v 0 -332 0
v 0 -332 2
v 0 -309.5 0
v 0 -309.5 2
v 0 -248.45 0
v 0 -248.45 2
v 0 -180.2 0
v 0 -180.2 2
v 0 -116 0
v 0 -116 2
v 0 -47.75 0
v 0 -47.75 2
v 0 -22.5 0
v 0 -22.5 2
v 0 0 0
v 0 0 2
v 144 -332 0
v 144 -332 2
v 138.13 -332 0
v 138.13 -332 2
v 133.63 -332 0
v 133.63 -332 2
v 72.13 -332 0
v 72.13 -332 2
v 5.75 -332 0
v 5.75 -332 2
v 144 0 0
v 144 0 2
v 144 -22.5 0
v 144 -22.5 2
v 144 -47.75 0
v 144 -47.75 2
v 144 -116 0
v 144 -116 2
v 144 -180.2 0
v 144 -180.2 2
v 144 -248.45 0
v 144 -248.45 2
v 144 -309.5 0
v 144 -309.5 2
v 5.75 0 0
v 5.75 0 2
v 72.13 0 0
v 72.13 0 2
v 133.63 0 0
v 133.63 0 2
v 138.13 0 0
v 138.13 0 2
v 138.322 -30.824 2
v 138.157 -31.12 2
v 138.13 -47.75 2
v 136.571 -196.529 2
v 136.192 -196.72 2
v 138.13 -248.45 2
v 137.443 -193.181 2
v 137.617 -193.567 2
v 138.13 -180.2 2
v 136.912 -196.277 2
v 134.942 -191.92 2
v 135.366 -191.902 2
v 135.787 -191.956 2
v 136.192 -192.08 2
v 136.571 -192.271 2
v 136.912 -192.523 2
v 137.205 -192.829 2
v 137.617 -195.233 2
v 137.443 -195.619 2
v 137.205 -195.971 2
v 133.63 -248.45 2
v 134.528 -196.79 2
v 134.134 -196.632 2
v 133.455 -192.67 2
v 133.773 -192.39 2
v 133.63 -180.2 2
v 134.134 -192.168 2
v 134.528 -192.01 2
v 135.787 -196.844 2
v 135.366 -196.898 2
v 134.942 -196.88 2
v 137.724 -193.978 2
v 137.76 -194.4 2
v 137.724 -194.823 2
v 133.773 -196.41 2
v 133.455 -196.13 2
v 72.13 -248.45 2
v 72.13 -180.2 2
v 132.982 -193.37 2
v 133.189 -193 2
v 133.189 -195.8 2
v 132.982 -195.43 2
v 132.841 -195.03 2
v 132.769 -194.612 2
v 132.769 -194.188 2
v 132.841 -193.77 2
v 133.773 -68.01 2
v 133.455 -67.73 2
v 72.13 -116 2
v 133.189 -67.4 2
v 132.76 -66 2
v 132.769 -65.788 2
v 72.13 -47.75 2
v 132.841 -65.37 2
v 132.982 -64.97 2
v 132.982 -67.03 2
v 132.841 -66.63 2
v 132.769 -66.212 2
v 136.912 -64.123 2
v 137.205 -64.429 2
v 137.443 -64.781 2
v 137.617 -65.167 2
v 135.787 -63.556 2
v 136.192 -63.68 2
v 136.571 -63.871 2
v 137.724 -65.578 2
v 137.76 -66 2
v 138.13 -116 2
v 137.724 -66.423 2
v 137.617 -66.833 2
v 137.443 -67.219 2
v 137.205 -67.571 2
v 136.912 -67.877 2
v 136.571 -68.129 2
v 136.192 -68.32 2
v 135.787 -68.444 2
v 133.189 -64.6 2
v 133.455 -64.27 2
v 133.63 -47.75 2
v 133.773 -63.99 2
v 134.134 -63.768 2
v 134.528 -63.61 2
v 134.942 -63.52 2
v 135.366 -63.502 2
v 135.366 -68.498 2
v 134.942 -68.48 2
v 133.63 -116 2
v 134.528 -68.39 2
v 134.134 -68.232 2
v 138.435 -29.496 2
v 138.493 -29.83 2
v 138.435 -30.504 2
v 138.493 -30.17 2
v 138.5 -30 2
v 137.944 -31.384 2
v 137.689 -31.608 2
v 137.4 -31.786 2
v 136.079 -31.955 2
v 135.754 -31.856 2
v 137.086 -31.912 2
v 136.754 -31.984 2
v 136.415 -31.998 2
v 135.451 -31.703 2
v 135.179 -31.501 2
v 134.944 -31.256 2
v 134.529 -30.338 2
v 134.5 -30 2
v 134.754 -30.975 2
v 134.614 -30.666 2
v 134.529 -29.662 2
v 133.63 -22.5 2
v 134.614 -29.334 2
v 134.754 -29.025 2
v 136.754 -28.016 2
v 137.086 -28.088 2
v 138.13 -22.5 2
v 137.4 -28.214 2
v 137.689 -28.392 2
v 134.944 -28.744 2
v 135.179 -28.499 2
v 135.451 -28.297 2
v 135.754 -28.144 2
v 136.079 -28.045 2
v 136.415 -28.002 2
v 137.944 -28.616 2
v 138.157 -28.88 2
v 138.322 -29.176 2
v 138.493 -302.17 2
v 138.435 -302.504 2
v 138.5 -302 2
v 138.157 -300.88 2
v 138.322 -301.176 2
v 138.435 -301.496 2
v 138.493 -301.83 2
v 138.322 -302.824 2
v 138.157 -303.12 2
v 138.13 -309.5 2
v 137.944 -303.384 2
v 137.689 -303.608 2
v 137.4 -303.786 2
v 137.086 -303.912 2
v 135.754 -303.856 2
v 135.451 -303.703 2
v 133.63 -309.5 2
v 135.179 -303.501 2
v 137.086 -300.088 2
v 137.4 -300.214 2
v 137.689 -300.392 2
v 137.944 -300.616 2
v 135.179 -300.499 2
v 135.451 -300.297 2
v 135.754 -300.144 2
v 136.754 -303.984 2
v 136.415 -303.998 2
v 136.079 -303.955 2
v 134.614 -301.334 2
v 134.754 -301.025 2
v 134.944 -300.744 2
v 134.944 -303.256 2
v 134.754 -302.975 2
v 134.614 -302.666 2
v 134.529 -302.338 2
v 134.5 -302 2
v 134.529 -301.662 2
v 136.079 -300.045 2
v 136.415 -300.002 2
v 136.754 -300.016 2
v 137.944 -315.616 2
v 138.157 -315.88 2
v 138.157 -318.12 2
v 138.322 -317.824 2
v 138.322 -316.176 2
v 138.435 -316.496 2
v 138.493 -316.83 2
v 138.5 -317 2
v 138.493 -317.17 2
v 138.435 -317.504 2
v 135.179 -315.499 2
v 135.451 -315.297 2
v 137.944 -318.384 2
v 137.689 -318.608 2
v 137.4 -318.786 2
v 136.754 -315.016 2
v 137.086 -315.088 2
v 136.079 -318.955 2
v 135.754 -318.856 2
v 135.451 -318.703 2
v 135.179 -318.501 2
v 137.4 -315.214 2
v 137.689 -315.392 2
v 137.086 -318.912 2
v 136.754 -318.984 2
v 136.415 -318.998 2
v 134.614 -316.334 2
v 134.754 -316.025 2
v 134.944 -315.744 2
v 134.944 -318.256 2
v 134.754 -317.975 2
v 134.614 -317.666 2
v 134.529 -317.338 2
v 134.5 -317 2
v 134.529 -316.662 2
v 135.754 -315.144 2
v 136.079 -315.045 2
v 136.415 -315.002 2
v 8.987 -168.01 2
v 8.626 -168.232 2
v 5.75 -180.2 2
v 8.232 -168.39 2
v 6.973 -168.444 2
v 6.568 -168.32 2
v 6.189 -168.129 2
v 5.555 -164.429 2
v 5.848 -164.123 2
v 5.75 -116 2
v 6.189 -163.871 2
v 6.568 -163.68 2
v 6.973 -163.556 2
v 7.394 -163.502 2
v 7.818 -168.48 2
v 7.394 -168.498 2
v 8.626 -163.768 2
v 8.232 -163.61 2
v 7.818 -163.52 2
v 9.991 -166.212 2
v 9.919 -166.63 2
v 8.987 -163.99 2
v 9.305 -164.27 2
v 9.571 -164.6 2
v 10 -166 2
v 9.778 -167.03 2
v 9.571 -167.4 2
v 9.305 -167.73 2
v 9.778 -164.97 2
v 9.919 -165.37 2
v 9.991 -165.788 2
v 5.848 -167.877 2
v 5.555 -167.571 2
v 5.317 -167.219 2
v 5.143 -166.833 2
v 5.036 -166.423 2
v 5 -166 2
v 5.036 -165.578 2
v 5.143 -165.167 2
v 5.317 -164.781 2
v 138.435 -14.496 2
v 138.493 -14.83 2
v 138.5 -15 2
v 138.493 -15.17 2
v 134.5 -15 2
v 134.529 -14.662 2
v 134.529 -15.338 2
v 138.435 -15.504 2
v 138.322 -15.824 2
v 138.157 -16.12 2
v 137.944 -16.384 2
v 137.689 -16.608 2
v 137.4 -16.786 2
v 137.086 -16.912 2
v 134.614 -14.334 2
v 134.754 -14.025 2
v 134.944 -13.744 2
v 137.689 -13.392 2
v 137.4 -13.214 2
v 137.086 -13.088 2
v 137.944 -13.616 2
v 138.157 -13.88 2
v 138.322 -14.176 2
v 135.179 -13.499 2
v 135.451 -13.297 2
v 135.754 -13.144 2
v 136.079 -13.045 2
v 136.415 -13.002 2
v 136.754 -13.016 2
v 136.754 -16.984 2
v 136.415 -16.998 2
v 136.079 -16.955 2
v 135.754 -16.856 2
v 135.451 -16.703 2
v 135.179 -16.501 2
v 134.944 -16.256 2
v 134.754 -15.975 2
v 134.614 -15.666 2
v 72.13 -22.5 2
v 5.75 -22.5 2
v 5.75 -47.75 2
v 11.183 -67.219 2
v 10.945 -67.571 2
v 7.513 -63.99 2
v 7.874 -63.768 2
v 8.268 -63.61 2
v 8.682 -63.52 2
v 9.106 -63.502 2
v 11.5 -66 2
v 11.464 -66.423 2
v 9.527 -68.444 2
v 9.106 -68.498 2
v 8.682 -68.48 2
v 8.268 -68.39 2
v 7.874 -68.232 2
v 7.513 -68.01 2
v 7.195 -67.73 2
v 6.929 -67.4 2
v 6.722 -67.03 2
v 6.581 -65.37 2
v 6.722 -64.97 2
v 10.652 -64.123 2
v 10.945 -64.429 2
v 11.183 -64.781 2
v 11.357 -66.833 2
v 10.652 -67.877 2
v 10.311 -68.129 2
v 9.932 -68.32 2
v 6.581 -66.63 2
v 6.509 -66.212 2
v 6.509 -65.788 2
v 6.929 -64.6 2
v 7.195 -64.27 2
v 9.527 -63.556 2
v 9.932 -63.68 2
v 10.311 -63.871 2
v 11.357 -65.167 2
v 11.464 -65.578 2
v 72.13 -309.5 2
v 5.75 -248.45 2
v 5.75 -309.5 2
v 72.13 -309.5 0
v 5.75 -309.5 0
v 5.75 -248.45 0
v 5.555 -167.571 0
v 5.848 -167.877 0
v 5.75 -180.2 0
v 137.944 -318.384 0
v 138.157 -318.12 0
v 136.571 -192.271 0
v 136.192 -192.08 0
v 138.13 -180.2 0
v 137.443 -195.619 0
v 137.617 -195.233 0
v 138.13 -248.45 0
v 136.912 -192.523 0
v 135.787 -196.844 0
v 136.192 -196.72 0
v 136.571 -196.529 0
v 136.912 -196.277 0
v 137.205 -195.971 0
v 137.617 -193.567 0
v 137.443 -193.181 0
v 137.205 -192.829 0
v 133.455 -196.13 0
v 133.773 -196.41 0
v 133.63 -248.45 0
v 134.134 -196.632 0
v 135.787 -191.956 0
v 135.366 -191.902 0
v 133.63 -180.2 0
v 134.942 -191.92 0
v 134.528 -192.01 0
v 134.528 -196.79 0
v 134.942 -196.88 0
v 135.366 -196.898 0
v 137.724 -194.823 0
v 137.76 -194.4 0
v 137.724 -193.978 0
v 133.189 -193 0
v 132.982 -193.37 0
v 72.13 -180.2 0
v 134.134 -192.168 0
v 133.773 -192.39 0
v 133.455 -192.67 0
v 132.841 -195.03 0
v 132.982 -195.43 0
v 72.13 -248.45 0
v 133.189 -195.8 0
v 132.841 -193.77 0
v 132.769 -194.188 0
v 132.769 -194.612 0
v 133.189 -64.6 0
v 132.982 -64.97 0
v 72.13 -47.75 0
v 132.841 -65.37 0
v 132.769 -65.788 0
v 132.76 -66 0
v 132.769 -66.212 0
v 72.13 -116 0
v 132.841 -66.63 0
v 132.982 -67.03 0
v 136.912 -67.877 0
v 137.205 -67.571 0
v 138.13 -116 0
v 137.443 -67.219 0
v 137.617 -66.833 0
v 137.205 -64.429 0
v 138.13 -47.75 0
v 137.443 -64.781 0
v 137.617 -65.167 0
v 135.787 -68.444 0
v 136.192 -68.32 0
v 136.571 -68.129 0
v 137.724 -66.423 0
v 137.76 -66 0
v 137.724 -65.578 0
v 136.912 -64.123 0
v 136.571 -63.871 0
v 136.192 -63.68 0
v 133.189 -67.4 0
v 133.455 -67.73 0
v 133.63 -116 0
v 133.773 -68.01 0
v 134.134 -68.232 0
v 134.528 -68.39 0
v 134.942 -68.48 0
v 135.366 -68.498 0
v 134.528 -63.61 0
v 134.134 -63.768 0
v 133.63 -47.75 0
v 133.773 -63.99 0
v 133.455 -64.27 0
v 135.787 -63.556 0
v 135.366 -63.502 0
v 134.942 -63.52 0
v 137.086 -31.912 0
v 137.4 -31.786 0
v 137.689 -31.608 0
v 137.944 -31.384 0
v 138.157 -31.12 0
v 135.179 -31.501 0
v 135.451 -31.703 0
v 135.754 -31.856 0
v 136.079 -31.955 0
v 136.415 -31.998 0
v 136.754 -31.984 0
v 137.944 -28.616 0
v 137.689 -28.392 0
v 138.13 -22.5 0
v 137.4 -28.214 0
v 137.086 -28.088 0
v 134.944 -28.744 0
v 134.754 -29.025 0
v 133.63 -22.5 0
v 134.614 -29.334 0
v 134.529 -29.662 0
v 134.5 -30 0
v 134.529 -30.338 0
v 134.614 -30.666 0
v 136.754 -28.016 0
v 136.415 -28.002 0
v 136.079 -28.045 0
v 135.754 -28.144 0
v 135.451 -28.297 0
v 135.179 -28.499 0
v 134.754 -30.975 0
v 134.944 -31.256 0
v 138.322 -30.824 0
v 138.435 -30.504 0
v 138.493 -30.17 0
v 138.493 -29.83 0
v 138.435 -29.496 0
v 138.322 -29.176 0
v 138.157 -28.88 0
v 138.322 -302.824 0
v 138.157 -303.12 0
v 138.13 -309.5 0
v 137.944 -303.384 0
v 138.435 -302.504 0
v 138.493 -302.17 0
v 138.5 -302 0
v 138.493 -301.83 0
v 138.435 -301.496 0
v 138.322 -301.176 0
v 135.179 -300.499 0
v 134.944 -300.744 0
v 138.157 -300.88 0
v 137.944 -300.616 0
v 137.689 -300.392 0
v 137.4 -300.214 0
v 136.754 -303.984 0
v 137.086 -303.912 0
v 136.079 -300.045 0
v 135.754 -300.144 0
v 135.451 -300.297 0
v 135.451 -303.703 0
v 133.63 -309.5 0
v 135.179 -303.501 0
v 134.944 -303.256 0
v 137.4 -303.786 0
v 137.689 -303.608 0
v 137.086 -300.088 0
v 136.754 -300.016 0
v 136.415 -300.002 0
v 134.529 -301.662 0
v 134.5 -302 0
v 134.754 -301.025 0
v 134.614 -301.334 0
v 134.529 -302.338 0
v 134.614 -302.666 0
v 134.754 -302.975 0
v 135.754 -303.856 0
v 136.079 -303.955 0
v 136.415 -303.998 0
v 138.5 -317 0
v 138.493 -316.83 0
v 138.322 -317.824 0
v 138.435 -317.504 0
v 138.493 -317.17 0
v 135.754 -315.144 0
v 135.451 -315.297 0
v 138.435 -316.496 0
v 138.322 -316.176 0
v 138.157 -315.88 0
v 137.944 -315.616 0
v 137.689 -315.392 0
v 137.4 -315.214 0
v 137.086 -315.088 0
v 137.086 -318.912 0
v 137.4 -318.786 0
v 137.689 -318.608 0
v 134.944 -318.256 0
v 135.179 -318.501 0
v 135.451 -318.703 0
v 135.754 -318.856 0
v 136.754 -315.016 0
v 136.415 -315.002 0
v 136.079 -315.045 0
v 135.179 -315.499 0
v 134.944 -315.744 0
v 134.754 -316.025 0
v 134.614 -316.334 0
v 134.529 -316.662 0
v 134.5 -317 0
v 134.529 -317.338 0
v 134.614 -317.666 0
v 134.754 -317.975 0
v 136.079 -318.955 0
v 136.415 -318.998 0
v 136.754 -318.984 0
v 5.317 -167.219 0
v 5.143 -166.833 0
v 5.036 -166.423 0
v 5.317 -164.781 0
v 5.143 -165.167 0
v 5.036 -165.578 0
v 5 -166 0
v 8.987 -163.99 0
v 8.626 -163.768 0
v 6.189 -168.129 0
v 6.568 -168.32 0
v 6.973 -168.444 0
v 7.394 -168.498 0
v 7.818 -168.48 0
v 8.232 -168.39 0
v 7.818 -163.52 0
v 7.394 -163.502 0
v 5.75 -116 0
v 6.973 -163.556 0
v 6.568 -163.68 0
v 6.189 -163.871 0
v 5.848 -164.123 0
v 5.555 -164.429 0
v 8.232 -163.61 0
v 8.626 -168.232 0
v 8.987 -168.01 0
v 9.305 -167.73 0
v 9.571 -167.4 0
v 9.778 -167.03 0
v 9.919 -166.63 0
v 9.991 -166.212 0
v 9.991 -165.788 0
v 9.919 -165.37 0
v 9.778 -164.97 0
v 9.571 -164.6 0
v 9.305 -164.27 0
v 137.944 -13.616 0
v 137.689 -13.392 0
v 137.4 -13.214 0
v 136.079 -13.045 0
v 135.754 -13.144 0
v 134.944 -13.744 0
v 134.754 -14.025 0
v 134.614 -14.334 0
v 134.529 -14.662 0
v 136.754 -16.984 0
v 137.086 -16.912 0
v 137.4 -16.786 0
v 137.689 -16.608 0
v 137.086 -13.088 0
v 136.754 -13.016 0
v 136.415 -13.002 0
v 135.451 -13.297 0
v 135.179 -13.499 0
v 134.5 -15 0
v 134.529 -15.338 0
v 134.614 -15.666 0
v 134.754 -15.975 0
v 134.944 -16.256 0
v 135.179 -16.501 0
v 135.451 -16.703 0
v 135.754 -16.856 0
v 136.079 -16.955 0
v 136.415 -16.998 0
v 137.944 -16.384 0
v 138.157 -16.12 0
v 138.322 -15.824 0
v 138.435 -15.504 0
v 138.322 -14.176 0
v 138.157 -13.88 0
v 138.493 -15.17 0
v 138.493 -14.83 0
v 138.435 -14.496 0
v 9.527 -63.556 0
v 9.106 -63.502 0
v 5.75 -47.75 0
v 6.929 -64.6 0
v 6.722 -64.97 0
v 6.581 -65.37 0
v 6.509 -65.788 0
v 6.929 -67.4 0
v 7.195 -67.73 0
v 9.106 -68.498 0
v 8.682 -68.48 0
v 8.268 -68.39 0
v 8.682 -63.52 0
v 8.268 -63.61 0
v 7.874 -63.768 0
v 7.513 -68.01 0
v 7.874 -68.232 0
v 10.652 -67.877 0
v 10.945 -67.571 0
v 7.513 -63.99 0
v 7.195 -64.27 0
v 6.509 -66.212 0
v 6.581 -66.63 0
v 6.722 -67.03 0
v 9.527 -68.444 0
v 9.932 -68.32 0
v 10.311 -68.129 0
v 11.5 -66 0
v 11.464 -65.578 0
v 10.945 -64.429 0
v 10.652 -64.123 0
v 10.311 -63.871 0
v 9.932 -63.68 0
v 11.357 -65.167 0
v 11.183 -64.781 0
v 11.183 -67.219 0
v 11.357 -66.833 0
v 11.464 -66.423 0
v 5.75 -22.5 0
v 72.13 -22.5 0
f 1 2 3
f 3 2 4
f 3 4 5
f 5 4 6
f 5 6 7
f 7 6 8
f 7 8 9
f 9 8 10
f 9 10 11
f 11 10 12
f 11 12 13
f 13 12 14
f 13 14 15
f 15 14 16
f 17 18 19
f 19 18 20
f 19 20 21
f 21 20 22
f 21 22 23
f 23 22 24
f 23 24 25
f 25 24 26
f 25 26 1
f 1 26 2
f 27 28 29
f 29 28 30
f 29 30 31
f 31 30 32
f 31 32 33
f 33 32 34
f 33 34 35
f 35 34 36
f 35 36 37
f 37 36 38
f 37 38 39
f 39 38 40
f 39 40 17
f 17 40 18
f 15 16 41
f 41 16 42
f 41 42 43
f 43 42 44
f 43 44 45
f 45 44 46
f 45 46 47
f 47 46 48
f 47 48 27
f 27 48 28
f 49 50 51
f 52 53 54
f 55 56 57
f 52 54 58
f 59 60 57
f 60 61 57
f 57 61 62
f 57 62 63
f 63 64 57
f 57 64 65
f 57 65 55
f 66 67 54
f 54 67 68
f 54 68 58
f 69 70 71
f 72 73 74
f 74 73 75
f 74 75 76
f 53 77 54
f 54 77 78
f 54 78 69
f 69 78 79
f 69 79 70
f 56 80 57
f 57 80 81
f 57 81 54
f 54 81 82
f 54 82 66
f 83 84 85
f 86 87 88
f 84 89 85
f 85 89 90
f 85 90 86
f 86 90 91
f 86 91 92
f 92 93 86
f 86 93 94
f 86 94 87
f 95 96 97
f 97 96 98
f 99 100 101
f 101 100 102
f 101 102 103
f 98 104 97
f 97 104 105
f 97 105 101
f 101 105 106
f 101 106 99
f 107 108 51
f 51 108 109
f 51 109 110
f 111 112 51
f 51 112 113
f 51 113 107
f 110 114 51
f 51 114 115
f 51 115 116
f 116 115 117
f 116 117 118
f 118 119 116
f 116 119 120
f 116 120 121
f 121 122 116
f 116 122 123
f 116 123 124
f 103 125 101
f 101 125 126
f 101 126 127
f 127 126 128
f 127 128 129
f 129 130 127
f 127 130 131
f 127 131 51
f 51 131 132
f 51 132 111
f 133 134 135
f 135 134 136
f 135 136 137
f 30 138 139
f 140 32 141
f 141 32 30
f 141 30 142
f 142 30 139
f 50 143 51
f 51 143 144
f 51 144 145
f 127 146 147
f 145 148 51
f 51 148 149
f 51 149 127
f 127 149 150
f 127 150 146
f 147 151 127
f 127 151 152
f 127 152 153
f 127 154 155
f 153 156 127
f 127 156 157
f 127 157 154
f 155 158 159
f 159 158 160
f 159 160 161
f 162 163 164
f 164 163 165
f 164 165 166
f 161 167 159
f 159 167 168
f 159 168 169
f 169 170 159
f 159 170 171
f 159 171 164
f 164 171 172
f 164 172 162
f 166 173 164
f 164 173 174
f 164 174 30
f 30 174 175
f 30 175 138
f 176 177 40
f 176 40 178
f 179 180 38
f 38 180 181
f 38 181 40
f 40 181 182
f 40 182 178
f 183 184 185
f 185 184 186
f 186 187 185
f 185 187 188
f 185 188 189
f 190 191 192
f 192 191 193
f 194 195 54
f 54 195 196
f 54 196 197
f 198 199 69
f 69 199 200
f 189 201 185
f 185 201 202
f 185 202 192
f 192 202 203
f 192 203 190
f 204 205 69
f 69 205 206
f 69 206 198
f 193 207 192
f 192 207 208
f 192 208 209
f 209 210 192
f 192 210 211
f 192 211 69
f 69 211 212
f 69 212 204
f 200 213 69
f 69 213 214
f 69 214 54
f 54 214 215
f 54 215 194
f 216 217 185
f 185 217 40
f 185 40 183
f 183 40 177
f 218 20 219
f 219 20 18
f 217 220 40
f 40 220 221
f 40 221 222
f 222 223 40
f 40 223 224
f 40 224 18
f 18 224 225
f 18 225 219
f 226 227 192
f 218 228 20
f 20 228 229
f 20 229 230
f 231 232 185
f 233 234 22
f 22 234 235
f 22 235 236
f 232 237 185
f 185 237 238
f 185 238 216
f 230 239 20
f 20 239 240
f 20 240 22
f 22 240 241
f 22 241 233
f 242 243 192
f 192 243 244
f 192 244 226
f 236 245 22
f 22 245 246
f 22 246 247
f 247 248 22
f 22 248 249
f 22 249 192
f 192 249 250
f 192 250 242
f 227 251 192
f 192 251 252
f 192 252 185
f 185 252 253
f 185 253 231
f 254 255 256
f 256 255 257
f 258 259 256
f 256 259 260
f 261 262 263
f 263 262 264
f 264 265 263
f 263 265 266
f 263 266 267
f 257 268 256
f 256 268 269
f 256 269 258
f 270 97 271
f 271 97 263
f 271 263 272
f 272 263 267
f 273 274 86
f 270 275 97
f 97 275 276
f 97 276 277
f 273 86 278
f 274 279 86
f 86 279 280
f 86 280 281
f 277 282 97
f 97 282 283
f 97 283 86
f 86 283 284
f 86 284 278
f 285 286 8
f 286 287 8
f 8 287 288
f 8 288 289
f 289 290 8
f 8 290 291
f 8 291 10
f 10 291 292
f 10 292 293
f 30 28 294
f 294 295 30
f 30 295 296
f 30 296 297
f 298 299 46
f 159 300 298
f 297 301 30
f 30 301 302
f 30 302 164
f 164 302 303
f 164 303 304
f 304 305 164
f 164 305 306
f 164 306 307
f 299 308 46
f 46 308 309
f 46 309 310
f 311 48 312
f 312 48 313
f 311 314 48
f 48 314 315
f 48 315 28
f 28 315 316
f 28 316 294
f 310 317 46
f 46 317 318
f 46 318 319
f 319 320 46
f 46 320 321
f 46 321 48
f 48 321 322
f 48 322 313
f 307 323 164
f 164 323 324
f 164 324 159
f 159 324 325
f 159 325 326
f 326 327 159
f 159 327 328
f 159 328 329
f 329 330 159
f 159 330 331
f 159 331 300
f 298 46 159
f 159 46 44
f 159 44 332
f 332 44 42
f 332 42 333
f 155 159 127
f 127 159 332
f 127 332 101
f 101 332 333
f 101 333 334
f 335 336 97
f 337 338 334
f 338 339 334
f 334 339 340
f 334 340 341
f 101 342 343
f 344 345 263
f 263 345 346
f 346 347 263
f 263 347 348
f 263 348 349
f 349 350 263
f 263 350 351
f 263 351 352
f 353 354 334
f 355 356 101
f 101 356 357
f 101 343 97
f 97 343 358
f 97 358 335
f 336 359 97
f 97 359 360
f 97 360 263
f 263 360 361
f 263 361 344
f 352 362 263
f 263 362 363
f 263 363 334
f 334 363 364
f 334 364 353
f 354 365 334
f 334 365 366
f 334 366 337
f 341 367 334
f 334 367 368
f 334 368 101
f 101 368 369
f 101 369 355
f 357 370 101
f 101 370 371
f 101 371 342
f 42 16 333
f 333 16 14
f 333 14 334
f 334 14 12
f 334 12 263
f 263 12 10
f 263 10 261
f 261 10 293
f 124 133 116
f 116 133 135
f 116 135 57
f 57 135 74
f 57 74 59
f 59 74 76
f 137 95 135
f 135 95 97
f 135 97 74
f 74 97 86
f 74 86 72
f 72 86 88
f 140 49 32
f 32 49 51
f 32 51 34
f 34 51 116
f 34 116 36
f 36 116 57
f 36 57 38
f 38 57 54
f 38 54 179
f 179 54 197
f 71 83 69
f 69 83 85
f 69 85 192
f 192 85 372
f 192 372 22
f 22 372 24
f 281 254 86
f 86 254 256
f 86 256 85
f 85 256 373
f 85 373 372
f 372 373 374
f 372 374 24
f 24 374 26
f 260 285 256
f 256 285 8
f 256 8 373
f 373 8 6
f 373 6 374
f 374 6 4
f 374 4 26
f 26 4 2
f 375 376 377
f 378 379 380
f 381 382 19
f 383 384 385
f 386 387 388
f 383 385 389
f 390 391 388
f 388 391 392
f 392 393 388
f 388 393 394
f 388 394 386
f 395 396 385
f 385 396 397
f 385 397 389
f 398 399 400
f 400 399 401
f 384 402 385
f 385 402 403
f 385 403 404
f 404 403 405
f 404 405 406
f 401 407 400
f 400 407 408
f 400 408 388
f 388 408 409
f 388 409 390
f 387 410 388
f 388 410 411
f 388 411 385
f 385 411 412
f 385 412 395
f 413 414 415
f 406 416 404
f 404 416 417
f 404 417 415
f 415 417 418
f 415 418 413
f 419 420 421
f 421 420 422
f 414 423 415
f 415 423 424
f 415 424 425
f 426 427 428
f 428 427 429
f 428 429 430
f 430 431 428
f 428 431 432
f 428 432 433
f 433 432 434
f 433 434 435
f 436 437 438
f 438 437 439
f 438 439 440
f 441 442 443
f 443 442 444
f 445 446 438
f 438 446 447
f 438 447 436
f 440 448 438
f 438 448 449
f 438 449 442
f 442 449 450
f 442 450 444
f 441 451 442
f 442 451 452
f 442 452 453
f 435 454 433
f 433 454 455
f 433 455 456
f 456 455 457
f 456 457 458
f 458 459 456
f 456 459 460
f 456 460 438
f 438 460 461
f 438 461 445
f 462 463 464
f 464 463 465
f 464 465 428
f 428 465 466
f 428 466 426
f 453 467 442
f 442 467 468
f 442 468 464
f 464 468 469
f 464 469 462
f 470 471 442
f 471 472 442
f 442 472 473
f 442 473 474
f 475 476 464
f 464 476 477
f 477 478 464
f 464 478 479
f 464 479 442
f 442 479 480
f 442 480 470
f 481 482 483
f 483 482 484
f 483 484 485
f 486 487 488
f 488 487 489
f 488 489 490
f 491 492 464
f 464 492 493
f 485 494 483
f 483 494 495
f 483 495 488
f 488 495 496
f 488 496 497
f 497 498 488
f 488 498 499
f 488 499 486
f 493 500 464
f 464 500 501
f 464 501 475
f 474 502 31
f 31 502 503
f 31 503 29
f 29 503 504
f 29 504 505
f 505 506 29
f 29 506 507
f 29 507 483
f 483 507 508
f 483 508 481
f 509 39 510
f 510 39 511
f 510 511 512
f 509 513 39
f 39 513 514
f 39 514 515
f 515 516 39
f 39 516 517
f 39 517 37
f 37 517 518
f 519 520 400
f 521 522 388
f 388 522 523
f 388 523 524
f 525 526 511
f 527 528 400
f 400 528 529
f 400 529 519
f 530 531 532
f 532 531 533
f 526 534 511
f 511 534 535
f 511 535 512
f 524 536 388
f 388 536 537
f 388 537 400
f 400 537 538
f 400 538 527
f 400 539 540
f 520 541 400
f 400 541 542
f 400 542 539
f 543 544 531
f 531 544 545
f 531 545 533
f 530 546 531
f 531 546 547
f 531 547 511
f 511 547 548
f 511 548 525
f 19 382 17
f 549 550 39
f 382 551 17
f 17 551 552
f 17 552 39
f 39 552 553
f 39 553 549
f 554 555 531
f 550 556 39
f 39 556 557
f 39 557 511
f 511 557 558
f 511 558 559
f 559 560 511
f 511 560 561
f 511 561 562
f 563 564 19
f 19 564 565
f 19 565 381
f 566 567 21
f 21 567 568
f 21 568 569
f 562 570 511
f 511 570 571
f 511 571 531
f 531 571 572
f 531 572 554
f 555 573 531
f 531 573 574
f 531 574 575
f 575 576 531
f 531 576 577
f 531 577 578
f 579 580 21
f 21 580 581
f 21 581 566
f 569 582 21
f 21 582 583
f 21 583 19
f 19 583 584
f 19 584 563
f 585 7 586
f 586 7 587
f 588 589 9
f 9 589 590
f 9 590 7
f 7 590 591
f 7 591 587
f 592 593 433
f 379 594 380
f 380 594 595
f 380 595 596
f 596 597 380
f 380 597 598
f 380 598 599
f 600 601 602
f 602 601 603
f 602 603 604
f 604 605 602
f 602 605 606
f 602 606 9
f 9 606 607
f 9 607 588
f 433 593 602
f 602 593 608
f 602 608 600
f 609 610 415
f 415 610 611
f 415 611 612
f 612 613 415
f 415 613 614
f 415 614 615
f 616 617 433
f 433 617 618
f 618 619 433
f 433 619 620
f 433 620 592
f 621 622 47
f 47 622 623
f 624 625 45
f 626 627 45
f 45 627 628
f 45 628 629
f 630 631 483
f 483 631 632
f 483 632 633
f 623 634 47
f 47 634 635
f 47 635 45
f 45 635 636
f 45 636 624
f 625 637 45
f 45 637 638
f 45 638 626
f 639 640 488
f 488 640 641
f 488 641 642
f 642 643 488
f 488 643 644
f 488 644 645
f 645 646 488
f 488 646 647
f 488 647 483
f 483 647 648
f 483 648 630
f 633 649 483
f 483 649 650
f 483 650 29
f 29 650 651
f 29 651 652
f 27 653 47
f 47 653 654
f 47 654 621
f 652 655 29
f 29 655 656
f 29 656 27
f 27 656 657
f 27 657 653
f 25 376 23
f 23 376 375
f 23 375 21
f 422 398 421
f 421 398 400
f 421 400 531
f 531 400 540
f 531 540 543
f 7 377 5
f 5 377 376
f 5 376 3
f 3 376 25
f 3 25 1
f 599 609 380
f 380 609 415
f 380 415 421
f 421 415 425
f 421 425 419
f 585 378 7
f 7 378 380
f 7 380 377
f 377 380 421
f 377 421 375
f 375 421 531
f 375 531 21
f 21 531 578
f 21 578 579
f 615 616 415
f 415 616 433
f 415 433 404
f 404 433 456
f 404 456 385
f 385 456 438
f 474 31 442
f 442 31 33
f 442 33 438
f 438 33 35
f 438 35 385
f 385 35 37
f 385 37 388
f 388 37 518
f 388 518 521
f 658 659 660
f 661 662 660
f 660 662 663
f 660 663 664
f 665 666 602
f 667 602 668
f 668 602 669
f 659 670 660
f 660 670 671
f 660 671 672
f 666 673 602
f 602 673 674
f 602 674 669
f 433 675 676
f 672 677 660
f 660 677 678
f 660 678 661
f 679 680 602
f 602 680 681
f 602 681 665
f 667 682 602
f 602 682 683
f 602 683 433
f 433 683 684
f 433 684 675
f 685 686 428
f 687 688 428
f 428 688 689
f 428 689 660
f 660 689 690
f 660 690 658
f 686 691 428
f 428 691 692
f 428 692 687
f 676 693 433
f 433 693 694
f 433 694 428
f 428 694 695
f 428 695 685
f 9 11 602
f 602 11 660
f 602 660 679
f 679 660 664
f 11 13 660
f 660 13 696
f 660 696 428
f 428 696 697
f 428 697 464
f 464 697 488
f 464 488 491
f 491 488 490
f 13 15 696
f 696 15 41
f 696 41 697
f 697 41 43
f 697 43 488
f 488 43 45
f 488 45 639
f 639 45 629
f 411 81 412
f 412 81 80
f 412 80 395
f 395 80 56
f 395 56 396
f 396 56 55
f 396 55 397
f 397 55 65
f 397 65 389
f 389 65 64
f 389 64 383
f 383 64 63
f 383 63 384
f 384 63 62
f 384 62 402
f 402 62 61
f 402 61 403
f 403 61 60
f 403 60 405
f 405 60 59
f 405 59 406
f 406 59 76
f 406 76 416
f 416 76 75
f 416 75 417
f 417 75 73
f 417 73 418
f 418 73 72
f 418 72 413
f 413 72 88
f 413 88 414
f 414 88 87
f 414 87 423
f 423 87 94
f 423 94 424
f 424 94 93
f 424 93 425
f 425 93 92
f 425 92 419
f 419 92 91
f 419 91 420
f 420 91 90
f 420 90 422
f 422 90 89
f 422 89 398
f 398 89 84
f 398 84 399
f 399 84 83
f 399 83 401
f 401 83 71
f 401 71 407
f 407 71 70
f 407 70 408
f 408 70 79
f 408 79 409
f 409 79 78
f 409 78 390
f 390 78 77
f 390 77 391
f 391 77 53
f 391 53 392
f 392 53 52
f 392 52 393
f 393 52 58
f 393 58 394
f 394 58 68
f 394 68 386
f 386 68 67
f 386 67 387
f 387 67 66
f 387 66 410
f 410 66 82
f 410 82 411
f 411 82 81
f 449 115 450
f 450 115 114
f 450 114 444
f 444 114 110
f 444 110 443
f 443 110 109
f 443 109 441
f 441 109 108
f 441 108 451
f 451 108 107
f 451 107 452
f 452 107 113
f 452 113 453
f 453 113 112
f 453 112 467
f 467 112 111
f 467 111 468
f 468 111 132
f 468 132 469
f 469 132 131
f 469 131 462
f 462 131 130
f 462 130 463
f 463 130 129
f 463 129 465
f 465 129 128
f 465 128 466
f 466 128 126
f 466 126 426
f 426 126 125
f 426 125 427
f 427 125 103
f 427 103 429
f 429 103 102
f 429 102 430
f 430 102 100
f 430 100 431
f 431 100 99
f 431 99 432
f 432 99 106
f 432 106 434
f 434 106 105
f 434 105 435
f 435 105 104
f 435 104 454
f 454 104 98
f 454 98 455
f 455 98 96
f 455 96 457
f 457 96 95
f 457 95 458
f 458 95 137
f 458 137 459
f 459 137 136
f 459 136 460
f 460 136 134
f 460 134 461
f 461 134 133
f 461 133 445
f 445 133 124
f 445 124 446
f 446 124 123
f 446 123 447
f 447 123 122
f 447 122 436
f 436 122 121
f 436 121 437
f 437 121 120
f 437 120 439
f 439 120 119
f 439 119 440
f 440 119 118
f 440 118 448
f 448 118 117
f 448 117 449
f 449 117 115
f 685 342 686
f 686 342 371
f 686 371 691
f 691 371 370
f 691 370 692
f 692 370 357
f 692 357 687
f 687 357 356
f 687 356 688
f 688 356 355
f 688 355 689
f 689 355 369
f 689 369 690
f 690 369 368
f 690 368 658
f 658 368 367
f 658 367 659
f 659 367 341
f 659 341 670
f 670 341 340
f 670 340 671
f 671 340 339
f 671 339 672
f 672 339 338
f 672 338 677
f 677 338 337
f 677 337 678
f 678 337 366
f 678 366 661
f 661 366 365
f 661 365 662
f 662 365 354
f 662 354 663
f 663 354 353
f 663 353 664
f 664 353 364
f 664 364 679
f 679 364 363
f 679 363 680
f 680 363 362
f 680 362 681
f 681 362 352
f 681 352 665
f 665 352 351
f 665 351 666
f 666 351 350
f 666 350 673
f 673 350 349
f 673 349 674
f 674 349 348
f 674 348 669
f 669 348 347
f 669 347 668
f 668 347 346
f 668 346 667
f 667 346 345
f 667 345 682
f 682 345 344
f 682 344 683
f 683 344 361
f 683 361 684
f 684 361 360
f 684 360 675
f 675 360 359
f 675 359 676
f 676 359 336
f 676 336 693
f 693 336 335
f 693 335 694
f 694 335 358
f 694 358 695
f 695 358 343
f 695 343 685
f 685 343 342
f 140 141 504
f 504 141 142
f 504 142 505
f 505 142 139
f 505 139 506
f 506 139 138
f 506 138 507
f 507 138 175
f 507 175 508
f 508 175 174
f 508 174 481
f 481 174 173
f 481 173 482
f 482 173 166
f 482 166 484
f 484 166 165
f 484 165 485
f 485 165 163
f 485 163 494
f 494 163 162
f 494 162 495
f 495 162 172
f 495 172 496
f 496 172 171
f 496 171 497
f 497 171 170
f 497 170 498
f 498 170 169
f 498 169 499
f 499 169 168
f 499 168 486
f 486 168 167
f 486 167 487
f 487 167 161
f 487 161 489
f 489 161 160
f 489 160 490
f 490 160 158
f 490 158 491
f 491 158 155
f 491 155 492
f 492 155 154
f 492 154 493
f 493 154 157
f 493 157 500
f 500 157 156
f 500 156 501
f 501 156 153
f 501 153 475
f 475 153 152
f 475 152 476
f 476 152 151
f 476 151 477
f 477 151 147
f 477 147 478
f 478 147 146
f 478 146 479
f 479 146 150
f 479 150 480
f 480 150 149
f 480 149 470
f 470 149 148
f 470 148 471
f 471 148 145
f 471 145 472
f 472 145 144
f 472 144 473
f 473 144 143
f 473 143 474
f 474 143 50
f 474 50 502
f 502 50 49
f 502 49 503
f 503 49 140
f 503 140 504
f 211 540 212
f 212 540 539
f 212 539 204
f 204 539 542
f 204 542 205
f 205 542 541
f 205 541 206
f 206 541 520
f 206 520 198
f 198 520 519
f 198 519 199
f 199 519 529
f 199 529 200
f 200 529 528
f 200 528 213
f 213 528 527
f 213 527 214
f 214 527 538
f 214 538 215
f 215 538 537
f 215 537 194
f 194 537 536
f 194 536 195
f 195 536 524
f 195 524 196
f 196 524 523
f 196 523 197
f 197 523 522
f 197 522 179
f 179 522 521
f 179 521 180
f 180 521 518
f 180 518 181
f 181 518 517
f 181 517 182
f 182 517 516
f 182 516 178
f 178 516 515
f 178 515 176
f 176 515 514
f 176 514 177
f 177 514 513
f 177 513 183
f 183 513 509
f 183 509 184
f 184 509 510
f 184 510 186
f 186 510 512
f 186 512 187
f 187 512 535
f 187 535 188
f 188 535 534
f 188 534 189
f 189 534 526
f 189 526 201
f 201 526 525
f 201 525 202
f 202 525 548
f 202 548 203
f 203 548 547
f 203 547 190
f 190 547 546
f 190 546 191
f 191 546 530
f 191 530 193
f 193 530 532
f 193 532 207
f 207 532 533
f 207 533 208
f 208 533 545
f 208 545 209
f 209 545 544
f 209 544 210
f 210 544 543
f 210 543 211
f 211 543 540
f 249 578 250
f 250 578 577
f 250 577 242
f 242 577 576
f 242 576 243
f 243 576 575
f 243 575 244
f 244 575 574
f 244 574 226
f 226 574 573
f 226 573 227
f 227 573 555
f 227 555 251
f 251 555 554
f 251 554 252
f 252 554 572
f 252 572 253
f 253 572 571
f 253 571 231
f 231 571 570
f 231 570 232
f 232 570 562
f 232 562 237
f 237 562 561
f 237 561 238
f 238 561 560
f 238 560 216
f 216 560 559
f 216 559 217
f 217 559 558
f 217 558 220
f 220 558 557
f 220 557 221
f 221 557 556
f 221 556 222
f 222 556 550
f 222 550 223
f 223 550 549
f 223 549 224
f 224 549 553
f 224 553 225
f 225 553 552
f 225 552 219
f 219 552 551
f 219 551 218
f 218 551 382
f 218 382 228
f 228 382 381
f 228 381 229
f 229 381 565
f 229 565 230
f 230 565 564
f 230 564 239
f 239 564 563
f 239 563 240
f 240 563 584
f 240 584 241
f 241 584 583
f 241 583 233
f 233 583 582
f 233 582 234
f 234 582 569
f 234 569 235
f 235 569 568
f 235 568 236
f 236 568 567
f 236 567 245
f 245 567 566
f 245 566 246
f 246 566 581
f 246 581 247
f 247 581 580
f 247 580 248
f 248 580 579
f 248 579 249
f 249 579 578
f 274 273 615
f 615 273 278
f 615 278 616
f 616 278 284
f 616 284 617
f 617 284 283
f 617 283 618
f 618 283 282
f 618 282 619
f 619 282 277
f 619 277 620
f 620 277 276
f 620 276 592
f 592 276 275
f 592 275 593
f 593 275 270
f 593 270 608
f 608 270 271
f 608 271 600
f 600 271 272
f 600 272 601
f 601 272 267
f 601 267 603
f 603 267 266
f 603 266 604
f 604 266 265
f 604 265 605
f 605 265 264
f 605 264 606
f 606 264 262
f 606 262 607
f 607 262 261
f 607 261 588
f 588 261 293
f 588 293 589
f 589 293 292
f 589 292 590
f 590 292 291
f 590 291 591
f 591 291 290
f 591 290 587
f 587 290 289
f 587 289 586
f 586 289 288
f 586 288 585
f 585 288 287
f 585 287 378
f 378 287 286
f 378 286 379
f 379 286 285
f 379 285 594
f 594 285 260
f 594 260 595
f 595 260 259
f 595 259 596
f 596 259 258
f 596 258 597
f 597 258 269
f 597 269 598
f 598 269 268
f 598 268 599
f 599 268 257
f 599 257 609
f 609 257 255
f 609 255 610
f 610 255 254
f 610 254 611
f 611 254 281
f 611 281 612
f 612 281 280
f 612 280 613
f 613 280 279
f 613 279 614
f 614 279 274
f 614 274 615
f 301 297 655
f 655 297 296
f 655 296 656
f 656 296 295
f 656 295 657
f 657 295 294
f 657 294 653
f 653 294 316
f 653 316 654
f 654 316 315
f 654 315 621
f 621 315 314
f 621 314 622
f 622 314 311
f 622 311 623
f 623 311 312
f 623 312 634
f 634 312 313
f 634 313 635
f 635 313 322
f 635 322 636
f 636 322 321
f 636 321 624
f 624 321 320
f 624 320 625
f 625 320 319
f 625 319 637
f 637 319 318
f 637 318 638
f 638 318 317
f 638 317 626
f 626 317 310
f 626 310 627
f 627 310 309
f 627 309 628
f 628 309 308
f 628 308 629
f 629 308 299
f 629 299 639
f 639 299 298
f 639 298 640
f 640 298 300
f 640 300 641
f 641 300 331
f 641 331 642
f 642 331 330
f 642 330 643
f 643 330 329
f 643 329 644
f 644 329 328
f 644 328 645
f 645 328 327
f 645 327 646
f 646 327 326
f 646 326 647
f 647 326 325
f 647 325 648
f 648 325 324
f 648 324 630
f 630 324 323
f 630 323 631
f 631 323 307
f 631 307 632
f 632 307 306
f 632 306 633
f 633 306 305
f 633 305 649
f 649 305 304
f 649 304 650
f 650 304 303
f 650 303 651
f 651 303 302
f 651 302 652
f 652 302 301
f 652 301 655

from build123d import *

# Parameters (mm, degrees)
SKETCH_1_W          = 144
SKETCH_1_H          = 332
EXTRUDE_1_DEPTH     = 2
SKETCH_2_R          = 2.5
CUT_EXTRUDE_1_DEPTH = 2
SKETCH_4_R          = 2
SKETCH_4_R_2        = 2.5
CUT_EXTRUDE_2_DEPTH = 10


with BuildPart() as part:
    # 草图1 → 凸台-拉伸1 (new body)
    with BuildSketch(Plane.XY):
        with Locations((72, -166)):
            Rectangle(SKETCH_1_W, SKETCH_1_H)
    extrude(amount=EXTRUDE_1_DEPTH)

    # 草图2 → 切除-拉伸1 (cut)
    with BuildSketch(Plane.XY.offset(2)):
        with Locations((9, -66)):
            Circle(SKETCH_2_R)
        with Locations(Location((135.26, -66, 0), (0, 0, 180))):
            Circle(SKETCH_2_R)
        with Locations((135.26, -194.4)):
            Circle(SKETCH_2_R)
    extrude(amount=-CUT_EXTRUDE_1_DEPTH, mode=Mode.SUBTRACT)

    # 草图4 → 切除-拉伸2 (cut)
    with BuildSketch(Plane(origin=(0, 0, 0), x_dir=(-1, 0, 0), z_dir=(0, 0, -1))):
        with Locations((-136.5, -15)):
            Circle(SKETCH_4_R)
        with Locations((-136.5, -30)):
            Circle(SKETCH_4_R)
        with Locations(Location((-136.5, -302, 0), (0, 0, 180))):
            Circle(SKETCH_4_R)
        with Locations(Location((-136.5, -317, 0), (0, 0, 180))):
            Circle(SKETCH_4_R)
        with Locations((-7.5, -166)):
            Circle(SKETCH_4_R_2)
    extrude(amount=-CUT_EXTRUDE_2_DEPTH, mode=Mode.SUBTRACT)


solid = part.part
